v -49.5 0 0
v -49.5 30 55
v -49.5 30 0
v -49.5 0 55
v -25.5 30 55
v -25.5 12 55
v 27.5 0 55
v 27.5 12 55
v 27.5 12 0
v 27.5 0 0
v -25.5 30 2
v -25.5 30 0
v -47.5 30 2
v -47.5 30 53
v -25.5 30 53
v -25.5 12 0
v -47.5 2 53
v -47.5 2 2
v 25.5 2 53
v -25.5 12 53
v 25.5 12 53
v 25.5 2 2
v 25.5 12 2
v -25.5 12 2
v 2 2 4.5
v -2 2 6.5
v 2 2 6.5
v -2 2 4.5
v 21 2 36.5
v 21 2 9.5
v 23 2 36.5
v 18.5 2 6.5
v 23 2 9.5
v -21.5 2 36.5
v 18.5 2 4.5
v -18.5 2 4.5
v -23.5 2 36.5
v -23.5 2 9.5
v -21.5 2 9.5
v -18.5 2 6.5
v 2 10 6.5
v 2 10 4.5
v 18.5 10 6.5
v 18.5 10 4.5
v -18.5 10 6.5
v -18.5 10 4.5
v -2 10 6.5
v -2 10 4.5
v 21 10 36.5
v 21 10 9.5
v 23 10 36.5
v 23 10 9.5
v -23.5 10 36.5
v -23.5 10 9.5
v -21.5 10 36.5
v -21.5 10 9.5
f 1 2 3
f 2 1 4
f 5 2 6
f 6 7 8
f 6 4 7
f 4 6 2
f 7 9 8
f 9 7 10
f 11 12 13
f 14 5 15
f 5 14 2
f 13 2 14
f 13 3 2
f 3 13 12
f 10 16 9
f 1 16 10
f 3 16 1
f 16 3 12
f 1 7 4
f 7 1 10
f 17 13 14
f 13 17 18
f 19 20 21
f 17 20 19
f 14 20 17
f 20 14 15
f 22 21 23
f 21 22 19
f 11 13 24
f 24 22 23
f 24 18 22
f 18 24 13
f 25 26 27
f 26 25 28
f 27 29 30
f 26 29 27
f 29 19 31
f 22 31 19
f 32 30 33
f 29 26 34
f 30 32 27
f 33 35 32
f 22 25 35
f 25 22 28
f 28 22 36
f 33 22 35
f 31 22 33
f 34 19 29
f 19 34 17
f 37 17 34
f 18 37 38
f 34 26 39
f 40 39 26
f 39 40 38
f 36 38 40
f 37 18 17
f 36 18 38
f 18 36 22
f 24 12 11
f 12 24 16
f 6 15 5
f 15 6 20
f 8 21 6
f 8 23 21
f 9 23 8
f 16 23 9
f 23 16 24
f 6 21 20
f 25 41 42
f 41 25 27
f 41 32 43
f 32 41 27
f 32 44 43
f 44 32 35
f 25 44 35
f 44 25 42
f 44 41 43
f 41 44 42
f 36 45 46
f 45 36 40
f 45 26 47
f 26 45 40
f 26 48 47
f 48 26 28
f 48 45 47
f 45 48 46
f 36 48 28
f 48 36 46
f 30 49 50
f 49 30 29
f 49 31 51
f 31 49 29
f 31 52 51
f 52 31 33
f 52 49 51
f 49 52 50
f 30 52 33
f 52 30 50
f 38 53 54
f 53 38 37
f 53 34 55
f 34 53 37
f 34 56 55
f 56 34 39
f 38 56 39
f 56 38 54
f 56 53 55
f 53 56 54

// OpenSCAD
// Definition size of housing
// **************************

sizex = 51;
sizey = 51;
depth = 10;
thick = 2;
gap=2.5;

//Definition of circle angular resolution
resol        = 36;  


union () {
 difference () {
 
   // main block
   translate ([-sizex/2-thick-22,0,0]) {
     cube ( [sizex+thick*2+22, depth+20, sizey+thick*2] );
   };
     
   //remove inner
   translate ([-sizex/2-22,thick,thick]) {
   cube ( [sizex+22, depth+20, sizey]);
   };

   translate ([-sizex/2,thick+10,0]) {
   cube ( [sizex+5, depth+20, sizey+5]);
   };

         
 };      
 
 //add support fins
   translate ([2,thick,thick+gap]) {
   cube ( [sizex/2-thick*2-5, depth-2 , thick]);
   };

   translate ([+2 -sizex/2 +5 ,thick,thick+gap]) {
   cube ( [sizex/2-thick*2-5, depth-2 , thick]);
   };

   translate ([sizex/2-gap-thick,thick,thick+gap+5]) {
   cube ( [thick, depth-2 , sizex-thick*2 - 20]);
   };

   translate ([-(sizex/2-thick),thick,thick+gap+5]) {
   cube ( [thick, depth-2 , sizex-thick*2 - 20]);
   };
 
}
